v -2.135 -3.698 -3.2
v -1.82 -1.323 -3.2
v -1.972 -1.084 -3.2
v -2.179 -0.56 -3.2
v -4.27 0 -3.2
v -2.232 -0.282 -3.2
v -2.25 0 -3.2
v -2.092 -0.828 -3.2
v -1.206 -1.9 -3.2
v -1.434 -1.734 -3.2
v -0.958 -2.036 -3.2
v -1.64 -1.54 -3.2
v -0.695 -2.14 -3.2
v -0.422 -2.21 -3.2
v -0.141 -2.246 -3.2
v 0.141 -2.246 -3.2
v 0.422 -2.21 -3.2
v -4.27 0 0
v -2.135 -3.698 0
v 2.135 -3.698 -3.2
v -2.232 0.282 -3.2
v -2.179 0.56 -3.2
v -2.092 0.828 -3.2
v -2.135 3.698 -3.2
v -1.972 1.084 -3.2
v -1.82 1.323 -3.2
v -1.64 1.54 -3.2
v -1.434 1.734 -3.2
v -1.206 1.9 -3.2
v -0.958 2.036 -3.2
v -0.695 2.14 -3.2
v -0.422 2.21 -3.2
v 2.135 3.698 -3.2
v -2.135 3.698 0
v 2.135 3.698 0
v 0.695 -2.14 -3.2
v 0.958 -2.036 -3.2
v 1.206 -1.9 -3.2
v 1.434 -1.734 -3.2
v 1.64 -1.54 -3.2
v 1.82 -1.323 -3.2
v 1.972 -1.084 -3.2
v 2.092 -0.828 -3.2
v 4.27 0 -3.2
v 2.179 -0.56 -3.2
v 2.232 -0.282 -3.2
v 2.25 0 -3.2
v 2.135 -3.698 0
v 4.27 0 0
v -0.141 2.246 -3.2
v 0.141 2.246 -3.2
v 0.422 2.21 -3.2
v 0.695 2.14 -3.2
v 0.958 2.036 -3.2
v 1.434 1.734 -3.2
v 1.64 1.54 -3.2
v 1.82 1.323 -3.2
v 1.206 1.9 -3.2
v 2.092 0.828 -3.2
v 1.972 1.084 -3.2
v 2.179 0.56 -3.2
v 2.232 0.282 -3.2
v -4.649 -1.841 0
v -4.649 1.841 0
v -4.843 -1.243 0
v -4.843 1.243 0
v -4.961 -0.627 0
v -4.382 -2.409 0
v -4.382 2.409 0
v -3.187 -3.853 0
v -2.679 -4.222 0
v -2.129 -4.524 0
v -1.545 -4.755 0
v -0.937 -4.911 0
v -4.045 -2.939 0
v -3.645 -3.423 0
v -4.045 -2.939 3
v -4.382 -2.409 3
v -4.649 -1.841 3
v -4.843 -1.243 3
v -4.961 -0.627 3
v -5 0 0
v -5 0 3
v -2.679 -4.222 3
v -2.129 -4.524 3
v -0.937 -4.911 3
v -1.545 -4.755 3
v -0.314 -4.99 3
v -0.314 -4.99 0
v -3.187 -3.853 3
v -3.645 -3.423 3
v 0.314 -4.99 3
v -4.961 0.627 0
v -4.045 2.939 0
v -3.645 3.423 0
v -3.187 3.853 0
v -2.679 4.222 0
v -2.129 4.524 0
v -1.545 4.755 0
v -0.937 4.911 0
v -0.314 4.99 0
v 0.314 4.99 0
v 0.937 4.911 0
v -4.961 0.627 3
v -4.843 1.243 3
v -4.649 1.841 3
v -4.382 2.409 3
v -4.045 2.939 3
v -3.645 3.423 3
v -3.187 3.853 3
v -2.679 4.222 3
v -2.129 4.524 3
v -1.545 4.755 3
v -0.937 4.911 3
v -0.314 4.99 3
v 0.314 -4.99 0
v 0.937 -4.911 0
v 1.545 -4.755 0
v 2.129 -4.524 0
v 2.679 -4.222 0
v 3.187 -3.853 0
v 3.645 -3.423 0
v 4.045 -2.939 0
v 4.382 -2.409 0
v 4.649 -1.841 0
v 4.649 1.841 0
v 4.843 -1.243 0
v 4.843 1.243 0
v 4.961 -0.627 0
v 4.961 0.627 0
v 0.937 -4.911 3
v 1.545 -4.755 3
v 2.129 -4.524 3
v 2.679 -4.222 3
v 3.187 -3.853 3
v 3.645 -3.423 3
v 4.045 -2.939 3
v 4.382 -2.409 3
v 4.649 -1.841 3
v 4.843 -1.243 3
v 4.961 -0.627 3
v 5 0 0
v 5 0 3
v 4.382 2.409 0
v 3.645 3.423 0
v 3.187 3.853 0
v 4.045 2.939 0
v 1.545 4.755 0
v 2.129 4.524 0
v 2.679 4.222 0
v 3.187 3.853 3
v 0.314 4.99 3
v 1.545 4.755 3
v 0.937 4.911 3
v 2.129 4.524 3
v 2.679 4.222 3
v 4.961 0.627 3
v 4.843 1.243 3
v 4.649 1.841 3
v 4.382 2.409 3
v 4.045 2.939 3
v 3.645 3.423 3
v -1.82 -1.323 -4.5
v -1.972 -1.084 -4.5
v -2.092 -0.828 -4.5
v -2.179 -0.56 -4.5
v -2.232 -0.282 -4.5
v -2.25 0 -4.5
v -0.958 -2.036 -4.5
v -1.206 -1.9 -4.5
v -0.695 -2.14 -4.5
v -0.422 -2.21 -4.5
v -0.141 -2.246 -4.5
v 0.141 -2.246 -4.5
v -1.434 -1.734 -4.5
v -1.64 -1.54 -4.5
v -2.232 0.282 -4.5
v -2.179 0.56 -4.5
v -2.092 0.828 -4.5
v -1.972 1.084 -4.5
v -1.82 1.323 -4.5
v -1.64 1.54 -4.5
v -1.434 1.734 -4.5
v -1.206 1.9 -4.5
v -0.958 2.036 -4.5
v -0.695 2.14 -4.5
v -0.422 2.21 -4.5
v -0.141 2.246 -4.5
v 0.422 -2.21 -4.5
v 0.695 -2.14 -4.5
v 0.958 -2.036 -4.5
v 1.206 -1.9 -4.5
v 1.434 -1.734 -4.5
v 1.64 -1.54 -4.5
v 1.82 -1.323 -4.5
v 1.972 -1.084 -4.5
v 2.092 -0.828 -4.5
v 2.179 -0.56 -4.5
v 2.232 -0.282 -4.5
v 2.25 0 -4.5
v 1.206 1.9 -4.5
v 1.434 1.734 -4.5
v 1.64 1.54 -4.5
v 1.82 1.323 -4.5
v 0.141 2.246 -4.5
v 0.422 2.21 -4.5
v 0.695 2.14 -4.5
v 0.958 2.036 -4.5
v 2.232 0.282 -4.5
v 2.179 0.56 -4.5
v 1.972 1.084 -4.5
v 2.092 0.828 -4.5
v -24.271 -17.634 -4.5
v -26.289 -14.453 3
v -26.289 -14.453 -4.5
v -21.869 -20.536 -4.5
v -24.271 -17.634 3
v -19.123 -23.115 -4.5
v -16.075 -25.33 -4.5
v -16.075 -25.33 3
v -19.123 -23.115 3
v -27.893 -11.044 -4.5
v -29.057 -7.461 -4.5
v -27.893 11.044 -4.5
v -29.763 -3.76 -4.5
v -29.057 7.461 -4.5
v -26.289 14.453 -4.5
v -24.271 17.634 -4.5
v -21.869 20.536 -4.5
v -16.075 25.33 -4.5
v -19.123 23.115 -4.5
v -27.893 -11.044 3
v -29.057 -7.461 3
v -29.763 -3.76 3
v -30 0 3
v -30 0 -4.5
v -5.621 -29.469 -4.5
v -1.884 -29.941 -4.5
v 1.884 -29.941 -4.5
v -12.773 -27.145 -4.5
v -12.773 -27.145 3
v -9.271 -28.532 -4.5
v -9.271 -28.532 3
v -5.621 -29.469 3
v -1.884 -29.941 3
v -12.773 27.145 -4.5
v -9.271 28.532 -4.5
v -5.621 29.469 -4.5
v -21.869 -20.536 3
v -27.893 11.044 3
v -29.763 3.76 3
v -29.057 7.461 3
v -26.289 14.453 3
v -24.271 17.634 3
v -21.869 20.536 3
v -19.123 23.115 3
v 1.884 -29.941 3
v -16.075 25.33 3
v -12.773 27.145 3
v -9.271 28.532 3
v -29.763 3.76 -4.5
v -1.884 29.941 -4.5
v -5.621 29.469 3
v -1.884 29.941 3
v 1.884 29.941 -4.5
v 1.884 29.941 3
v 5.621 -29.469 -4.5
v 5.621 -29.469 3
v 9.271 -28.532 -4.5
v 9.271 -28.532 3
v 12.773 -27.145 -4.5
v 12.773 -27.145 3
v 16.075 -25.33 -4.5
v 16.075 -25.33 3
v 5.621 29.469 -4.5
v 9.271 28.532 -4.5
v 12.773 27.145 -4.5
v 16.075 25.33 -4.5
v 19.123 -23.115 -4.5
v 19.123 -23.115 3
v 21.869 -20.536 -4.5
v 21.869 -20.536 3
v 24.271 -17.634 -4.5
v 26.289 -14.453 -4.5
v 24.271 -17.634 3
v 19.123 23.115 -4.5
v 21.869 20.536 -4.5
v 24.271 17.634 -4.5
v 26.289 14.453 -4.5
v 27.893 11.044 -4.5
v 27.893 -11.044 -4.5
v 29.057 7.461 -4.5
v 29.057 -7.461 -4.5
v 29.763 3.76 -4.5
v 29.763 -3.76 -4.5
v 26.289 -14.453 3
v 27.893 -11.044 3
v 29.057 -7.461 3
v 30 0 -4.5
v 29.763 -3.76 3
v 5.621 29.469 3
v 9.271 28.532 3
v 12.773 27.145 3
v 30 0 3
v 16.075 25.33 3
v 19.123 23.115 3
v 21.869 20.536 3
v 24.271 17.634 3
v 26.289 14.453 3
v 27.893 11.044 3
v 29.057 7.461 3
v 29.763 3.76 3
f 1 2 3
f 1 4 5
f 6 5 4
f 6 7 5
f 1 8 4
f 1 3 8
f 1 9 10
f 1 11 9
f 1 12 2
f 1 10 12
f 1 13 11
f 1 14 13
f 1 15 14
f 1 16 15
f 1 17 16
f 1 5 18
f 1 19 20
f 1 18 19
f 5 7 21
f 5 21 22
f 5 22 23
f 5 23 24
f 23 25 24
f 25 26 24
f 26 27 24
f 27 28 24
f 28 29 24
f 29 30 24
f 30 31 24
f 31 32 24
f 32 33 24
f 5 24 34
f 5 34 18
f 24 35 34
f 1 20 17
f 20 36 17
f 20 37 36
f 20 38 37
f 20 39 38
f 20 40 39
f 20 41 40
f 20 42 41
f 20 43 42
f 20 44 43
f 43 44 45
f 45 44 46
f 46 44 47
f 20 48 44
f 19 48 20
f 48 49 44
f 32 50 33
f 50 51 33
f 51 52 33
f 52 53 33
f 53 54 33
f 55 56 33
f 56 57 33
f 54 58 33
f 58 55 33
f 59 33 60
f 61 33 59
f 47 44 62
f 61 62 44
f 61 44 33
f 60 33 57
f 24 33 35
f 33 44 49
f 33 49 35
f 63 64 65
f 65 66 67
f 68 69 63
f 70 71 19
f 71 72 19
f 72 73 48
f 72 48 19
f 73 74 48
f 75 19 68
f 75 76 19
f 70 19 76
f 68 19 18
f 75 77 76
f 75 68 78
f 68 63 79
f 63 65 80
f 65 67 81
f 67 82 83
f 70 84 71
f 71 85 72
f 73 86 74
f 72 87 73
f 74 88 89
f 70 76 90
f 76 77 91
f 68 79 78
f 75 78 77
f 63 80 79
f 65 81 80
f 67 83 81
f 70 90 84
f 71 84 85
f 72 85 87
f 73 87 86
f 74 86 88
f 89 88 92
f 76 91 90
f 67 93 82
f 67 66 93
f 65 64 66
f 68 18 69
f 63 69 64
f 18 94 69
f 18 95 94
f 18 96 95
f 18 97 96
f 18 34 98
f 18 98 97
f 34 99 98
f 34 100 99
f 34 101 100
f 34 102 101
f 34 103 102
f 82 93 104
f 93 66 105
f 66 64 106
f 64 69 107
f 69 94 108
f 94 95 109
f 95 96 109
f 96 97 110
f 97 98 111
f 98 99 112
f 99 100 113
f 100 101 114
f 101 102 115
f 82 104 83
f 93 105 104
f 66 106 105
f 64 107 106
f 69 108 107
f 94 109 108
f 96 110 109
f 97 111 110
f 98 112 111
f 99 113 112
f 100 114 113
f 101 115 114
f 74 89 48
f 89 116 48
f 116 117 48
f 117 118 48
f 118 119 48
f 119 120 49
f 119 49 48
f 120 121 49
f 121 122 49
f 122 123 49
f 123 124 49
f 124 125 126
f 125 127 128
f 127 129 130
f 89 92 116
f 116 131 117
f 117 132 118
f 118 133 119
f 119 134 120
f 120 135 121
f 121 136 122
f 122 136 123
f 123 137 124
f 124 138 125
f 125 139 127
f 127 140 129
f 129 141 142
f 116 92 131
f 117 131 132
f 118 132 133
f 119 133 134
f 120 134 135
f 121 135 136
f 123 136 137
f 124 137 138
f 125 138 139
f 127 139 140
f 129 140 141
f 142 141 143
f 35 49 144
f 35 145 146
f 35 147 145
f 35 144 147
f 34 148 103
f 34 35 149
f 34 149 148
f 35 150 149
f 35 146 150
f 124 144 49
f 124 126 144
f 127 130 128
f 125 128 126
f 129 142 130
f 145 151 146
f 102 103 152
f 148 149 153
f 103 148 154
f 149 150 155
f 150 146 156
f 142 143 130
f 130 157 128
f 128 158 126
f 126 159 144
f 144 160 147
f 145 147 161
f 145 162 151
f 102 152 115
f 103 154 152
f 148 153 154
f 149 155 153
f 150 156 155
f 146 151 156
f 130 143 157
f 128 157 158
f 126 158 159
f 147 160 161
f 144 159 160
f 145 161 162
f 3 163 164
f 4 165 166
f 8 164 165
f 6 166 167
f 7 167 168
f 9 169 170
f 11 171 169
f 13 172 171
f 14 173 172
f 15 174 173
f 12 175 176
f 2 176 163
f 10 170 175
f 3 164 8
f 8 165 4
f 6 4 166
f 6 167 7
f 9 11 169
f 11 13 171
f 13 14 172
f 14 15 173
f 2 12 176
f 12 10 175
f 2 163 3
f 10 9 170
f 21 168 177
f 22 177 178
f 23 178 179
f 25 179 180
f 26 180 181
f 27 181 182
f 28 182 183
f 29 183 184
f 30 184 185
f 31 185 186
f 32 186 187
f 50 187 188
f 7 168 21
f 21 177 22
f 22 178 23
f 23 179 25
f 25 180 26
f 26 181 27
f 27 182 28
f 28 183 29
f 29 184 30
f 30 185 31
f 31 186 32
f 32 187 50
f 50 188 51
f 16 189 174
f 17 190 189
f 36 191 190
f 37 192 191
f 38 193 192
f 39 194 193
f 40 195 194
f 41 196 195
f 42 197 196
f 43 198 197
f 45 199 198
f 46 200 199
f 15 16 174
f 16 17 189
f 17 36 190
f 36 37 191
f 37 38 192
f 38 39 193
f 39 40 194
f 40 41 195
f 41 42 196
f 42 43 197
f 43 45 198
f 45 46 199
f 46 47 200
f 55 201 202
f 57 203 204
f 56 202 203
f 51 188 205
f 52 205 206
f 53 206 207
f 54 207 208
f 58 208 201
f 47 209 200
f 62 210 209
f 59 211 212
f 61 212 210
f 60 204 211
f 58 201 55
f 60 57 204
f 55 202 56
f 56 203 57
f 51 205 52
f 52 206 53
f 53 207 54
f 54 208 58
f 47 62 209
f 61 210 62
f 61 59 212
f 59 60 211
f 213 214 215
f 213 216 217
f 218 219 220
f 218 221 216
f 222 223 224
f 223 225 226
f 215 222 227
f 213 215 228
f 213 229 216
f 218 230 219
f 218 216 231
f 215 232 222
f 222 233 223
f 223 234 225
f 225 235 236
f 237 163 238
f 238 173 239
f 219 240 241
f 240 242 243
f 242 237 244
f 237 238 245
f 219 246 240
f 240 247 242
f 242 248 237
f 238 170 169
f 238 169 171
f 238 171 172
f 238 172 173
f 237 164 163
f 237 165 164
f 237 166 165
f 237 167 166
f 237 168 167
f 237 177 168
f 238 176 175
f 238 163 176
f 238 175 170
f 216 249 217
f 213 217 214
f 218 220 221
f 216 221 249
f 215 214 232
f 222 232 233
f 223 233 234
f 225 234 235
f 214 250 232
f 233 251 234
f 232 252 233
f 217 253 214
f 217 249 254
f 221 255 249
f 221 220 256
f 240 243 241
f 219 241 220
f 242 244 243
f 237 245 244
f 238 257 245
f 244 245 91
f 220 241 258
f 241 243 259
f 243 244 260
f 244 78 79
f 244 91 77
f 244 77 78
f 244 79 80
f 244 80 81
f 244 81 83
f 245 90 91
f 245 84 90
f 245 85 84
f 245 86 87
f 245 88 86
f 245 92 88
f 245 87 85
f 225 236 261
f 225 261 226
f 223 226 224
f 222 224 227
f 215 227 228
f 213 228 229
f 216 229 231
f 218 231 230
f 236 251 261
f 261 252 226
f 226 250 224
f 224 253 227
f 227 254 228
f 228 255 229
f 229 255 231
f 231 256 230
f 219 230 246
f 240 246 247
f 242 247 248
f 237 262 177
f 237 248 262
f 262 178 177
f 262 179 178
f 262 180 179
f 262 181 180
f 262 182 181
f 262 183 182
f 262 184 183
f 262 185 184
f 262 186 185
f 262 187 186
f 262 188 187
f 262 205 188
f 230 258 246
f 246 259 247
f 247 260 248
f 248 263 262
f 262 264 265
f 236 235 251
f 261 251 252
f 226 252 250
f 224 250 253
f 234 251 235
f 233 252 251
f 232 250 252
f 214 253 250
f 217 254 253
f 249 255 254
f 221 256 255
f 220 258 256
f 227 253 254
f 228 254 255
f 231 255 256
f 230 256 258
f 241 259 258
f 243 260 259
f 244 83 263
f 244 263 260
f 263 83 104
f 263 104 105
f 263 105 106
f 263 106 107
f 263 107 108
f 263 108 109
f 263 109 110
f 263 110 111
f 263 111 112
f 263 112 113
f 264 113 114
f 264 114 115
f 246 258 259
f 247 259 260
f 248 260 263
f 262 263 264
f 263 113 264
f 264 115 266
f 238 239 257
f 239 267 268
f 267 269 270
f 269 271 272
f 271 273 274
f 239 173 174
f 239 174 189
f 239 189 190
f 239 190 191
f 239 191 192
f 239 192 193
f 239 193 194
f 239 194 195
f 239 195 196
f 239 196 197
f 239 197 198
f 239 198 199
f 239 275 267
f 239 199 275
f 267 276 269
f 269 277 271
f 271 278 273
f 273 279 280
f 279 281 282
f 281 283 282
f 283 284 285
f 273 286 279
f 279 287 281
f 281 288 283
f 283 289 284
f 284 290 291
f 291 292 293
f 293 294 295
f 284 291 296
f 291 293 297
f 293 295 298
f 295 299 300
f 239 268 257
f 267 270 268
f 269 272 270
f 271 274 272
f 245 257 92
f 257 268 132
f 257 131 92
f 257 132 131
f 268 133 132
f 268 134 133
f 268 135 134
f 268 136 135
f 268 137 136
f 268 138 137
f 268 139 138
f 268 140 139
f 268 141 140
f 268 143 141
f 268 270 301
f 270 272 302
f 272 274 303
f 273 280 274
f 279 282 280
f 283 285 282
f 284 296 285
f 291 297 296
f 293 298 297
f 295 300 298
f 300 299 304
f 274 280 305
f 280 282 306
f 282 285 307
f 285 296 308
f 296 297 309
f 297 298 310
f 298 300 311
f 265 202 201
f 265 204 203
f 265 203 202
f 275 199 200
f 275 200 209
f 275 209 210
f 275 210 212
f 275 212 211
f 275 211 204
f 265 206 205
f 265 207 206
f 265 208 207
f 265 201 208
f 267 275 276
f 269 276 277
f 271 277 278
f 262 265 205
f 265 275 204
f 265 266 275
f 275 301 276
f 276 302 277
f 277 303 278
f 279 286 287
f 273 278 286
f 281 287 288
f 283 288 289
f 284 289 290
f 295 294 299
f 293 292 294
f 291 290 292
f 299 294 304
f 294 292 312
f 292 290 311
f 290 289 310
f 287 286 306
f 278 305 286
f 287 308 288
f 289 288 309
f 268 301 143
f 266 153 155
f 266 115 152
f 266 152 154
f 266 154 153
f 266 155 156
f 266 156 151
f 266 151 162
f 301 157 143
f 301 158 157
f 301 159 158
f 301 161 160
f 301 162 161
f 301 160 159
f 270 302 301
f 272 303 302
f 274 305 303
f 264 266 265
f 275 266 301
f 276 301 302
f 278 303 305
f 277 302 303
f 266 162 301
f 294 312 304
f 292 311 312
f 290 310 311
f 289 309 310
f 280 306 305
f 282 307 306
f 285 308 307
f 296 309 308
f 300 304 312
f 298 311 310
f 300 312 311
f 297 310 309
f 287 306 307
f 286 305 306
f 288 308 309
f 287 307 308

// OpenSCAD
$fn = 50;

difference() {
	union() {
		translate(v = [0, 0, -4.5]) {
			cylinder(h = 7.5, r = 30.0);
		}
	}
	union() {
		translate(v = [0, 0, 0]) {
			rotate(a = [0, 0, 0]) {
				difference() {
					union() {
						translate(v = [0, 0, -3.2]) {
							linear_extrude(height = 3.2) {
								polygon(points = [[4.2698, 0.0], [2.1349000000000005, 3.697755269078796], [-2.134899999999999, 3.6977552690787965], [-4.2698, 5.228996902999369e-16], [-2.134900000000002, -3.6977552690787956], [2.1348999999999974, -3.697755269078798]]);
							}
						}
					}
					union();
				}
			}
		}
		#cylinder(h = 3, r = 5.0);
		#translate(v = [0, 0, -100.0]) {
			cylinder(h = 200, r = 2.25);
		}
	}
}
